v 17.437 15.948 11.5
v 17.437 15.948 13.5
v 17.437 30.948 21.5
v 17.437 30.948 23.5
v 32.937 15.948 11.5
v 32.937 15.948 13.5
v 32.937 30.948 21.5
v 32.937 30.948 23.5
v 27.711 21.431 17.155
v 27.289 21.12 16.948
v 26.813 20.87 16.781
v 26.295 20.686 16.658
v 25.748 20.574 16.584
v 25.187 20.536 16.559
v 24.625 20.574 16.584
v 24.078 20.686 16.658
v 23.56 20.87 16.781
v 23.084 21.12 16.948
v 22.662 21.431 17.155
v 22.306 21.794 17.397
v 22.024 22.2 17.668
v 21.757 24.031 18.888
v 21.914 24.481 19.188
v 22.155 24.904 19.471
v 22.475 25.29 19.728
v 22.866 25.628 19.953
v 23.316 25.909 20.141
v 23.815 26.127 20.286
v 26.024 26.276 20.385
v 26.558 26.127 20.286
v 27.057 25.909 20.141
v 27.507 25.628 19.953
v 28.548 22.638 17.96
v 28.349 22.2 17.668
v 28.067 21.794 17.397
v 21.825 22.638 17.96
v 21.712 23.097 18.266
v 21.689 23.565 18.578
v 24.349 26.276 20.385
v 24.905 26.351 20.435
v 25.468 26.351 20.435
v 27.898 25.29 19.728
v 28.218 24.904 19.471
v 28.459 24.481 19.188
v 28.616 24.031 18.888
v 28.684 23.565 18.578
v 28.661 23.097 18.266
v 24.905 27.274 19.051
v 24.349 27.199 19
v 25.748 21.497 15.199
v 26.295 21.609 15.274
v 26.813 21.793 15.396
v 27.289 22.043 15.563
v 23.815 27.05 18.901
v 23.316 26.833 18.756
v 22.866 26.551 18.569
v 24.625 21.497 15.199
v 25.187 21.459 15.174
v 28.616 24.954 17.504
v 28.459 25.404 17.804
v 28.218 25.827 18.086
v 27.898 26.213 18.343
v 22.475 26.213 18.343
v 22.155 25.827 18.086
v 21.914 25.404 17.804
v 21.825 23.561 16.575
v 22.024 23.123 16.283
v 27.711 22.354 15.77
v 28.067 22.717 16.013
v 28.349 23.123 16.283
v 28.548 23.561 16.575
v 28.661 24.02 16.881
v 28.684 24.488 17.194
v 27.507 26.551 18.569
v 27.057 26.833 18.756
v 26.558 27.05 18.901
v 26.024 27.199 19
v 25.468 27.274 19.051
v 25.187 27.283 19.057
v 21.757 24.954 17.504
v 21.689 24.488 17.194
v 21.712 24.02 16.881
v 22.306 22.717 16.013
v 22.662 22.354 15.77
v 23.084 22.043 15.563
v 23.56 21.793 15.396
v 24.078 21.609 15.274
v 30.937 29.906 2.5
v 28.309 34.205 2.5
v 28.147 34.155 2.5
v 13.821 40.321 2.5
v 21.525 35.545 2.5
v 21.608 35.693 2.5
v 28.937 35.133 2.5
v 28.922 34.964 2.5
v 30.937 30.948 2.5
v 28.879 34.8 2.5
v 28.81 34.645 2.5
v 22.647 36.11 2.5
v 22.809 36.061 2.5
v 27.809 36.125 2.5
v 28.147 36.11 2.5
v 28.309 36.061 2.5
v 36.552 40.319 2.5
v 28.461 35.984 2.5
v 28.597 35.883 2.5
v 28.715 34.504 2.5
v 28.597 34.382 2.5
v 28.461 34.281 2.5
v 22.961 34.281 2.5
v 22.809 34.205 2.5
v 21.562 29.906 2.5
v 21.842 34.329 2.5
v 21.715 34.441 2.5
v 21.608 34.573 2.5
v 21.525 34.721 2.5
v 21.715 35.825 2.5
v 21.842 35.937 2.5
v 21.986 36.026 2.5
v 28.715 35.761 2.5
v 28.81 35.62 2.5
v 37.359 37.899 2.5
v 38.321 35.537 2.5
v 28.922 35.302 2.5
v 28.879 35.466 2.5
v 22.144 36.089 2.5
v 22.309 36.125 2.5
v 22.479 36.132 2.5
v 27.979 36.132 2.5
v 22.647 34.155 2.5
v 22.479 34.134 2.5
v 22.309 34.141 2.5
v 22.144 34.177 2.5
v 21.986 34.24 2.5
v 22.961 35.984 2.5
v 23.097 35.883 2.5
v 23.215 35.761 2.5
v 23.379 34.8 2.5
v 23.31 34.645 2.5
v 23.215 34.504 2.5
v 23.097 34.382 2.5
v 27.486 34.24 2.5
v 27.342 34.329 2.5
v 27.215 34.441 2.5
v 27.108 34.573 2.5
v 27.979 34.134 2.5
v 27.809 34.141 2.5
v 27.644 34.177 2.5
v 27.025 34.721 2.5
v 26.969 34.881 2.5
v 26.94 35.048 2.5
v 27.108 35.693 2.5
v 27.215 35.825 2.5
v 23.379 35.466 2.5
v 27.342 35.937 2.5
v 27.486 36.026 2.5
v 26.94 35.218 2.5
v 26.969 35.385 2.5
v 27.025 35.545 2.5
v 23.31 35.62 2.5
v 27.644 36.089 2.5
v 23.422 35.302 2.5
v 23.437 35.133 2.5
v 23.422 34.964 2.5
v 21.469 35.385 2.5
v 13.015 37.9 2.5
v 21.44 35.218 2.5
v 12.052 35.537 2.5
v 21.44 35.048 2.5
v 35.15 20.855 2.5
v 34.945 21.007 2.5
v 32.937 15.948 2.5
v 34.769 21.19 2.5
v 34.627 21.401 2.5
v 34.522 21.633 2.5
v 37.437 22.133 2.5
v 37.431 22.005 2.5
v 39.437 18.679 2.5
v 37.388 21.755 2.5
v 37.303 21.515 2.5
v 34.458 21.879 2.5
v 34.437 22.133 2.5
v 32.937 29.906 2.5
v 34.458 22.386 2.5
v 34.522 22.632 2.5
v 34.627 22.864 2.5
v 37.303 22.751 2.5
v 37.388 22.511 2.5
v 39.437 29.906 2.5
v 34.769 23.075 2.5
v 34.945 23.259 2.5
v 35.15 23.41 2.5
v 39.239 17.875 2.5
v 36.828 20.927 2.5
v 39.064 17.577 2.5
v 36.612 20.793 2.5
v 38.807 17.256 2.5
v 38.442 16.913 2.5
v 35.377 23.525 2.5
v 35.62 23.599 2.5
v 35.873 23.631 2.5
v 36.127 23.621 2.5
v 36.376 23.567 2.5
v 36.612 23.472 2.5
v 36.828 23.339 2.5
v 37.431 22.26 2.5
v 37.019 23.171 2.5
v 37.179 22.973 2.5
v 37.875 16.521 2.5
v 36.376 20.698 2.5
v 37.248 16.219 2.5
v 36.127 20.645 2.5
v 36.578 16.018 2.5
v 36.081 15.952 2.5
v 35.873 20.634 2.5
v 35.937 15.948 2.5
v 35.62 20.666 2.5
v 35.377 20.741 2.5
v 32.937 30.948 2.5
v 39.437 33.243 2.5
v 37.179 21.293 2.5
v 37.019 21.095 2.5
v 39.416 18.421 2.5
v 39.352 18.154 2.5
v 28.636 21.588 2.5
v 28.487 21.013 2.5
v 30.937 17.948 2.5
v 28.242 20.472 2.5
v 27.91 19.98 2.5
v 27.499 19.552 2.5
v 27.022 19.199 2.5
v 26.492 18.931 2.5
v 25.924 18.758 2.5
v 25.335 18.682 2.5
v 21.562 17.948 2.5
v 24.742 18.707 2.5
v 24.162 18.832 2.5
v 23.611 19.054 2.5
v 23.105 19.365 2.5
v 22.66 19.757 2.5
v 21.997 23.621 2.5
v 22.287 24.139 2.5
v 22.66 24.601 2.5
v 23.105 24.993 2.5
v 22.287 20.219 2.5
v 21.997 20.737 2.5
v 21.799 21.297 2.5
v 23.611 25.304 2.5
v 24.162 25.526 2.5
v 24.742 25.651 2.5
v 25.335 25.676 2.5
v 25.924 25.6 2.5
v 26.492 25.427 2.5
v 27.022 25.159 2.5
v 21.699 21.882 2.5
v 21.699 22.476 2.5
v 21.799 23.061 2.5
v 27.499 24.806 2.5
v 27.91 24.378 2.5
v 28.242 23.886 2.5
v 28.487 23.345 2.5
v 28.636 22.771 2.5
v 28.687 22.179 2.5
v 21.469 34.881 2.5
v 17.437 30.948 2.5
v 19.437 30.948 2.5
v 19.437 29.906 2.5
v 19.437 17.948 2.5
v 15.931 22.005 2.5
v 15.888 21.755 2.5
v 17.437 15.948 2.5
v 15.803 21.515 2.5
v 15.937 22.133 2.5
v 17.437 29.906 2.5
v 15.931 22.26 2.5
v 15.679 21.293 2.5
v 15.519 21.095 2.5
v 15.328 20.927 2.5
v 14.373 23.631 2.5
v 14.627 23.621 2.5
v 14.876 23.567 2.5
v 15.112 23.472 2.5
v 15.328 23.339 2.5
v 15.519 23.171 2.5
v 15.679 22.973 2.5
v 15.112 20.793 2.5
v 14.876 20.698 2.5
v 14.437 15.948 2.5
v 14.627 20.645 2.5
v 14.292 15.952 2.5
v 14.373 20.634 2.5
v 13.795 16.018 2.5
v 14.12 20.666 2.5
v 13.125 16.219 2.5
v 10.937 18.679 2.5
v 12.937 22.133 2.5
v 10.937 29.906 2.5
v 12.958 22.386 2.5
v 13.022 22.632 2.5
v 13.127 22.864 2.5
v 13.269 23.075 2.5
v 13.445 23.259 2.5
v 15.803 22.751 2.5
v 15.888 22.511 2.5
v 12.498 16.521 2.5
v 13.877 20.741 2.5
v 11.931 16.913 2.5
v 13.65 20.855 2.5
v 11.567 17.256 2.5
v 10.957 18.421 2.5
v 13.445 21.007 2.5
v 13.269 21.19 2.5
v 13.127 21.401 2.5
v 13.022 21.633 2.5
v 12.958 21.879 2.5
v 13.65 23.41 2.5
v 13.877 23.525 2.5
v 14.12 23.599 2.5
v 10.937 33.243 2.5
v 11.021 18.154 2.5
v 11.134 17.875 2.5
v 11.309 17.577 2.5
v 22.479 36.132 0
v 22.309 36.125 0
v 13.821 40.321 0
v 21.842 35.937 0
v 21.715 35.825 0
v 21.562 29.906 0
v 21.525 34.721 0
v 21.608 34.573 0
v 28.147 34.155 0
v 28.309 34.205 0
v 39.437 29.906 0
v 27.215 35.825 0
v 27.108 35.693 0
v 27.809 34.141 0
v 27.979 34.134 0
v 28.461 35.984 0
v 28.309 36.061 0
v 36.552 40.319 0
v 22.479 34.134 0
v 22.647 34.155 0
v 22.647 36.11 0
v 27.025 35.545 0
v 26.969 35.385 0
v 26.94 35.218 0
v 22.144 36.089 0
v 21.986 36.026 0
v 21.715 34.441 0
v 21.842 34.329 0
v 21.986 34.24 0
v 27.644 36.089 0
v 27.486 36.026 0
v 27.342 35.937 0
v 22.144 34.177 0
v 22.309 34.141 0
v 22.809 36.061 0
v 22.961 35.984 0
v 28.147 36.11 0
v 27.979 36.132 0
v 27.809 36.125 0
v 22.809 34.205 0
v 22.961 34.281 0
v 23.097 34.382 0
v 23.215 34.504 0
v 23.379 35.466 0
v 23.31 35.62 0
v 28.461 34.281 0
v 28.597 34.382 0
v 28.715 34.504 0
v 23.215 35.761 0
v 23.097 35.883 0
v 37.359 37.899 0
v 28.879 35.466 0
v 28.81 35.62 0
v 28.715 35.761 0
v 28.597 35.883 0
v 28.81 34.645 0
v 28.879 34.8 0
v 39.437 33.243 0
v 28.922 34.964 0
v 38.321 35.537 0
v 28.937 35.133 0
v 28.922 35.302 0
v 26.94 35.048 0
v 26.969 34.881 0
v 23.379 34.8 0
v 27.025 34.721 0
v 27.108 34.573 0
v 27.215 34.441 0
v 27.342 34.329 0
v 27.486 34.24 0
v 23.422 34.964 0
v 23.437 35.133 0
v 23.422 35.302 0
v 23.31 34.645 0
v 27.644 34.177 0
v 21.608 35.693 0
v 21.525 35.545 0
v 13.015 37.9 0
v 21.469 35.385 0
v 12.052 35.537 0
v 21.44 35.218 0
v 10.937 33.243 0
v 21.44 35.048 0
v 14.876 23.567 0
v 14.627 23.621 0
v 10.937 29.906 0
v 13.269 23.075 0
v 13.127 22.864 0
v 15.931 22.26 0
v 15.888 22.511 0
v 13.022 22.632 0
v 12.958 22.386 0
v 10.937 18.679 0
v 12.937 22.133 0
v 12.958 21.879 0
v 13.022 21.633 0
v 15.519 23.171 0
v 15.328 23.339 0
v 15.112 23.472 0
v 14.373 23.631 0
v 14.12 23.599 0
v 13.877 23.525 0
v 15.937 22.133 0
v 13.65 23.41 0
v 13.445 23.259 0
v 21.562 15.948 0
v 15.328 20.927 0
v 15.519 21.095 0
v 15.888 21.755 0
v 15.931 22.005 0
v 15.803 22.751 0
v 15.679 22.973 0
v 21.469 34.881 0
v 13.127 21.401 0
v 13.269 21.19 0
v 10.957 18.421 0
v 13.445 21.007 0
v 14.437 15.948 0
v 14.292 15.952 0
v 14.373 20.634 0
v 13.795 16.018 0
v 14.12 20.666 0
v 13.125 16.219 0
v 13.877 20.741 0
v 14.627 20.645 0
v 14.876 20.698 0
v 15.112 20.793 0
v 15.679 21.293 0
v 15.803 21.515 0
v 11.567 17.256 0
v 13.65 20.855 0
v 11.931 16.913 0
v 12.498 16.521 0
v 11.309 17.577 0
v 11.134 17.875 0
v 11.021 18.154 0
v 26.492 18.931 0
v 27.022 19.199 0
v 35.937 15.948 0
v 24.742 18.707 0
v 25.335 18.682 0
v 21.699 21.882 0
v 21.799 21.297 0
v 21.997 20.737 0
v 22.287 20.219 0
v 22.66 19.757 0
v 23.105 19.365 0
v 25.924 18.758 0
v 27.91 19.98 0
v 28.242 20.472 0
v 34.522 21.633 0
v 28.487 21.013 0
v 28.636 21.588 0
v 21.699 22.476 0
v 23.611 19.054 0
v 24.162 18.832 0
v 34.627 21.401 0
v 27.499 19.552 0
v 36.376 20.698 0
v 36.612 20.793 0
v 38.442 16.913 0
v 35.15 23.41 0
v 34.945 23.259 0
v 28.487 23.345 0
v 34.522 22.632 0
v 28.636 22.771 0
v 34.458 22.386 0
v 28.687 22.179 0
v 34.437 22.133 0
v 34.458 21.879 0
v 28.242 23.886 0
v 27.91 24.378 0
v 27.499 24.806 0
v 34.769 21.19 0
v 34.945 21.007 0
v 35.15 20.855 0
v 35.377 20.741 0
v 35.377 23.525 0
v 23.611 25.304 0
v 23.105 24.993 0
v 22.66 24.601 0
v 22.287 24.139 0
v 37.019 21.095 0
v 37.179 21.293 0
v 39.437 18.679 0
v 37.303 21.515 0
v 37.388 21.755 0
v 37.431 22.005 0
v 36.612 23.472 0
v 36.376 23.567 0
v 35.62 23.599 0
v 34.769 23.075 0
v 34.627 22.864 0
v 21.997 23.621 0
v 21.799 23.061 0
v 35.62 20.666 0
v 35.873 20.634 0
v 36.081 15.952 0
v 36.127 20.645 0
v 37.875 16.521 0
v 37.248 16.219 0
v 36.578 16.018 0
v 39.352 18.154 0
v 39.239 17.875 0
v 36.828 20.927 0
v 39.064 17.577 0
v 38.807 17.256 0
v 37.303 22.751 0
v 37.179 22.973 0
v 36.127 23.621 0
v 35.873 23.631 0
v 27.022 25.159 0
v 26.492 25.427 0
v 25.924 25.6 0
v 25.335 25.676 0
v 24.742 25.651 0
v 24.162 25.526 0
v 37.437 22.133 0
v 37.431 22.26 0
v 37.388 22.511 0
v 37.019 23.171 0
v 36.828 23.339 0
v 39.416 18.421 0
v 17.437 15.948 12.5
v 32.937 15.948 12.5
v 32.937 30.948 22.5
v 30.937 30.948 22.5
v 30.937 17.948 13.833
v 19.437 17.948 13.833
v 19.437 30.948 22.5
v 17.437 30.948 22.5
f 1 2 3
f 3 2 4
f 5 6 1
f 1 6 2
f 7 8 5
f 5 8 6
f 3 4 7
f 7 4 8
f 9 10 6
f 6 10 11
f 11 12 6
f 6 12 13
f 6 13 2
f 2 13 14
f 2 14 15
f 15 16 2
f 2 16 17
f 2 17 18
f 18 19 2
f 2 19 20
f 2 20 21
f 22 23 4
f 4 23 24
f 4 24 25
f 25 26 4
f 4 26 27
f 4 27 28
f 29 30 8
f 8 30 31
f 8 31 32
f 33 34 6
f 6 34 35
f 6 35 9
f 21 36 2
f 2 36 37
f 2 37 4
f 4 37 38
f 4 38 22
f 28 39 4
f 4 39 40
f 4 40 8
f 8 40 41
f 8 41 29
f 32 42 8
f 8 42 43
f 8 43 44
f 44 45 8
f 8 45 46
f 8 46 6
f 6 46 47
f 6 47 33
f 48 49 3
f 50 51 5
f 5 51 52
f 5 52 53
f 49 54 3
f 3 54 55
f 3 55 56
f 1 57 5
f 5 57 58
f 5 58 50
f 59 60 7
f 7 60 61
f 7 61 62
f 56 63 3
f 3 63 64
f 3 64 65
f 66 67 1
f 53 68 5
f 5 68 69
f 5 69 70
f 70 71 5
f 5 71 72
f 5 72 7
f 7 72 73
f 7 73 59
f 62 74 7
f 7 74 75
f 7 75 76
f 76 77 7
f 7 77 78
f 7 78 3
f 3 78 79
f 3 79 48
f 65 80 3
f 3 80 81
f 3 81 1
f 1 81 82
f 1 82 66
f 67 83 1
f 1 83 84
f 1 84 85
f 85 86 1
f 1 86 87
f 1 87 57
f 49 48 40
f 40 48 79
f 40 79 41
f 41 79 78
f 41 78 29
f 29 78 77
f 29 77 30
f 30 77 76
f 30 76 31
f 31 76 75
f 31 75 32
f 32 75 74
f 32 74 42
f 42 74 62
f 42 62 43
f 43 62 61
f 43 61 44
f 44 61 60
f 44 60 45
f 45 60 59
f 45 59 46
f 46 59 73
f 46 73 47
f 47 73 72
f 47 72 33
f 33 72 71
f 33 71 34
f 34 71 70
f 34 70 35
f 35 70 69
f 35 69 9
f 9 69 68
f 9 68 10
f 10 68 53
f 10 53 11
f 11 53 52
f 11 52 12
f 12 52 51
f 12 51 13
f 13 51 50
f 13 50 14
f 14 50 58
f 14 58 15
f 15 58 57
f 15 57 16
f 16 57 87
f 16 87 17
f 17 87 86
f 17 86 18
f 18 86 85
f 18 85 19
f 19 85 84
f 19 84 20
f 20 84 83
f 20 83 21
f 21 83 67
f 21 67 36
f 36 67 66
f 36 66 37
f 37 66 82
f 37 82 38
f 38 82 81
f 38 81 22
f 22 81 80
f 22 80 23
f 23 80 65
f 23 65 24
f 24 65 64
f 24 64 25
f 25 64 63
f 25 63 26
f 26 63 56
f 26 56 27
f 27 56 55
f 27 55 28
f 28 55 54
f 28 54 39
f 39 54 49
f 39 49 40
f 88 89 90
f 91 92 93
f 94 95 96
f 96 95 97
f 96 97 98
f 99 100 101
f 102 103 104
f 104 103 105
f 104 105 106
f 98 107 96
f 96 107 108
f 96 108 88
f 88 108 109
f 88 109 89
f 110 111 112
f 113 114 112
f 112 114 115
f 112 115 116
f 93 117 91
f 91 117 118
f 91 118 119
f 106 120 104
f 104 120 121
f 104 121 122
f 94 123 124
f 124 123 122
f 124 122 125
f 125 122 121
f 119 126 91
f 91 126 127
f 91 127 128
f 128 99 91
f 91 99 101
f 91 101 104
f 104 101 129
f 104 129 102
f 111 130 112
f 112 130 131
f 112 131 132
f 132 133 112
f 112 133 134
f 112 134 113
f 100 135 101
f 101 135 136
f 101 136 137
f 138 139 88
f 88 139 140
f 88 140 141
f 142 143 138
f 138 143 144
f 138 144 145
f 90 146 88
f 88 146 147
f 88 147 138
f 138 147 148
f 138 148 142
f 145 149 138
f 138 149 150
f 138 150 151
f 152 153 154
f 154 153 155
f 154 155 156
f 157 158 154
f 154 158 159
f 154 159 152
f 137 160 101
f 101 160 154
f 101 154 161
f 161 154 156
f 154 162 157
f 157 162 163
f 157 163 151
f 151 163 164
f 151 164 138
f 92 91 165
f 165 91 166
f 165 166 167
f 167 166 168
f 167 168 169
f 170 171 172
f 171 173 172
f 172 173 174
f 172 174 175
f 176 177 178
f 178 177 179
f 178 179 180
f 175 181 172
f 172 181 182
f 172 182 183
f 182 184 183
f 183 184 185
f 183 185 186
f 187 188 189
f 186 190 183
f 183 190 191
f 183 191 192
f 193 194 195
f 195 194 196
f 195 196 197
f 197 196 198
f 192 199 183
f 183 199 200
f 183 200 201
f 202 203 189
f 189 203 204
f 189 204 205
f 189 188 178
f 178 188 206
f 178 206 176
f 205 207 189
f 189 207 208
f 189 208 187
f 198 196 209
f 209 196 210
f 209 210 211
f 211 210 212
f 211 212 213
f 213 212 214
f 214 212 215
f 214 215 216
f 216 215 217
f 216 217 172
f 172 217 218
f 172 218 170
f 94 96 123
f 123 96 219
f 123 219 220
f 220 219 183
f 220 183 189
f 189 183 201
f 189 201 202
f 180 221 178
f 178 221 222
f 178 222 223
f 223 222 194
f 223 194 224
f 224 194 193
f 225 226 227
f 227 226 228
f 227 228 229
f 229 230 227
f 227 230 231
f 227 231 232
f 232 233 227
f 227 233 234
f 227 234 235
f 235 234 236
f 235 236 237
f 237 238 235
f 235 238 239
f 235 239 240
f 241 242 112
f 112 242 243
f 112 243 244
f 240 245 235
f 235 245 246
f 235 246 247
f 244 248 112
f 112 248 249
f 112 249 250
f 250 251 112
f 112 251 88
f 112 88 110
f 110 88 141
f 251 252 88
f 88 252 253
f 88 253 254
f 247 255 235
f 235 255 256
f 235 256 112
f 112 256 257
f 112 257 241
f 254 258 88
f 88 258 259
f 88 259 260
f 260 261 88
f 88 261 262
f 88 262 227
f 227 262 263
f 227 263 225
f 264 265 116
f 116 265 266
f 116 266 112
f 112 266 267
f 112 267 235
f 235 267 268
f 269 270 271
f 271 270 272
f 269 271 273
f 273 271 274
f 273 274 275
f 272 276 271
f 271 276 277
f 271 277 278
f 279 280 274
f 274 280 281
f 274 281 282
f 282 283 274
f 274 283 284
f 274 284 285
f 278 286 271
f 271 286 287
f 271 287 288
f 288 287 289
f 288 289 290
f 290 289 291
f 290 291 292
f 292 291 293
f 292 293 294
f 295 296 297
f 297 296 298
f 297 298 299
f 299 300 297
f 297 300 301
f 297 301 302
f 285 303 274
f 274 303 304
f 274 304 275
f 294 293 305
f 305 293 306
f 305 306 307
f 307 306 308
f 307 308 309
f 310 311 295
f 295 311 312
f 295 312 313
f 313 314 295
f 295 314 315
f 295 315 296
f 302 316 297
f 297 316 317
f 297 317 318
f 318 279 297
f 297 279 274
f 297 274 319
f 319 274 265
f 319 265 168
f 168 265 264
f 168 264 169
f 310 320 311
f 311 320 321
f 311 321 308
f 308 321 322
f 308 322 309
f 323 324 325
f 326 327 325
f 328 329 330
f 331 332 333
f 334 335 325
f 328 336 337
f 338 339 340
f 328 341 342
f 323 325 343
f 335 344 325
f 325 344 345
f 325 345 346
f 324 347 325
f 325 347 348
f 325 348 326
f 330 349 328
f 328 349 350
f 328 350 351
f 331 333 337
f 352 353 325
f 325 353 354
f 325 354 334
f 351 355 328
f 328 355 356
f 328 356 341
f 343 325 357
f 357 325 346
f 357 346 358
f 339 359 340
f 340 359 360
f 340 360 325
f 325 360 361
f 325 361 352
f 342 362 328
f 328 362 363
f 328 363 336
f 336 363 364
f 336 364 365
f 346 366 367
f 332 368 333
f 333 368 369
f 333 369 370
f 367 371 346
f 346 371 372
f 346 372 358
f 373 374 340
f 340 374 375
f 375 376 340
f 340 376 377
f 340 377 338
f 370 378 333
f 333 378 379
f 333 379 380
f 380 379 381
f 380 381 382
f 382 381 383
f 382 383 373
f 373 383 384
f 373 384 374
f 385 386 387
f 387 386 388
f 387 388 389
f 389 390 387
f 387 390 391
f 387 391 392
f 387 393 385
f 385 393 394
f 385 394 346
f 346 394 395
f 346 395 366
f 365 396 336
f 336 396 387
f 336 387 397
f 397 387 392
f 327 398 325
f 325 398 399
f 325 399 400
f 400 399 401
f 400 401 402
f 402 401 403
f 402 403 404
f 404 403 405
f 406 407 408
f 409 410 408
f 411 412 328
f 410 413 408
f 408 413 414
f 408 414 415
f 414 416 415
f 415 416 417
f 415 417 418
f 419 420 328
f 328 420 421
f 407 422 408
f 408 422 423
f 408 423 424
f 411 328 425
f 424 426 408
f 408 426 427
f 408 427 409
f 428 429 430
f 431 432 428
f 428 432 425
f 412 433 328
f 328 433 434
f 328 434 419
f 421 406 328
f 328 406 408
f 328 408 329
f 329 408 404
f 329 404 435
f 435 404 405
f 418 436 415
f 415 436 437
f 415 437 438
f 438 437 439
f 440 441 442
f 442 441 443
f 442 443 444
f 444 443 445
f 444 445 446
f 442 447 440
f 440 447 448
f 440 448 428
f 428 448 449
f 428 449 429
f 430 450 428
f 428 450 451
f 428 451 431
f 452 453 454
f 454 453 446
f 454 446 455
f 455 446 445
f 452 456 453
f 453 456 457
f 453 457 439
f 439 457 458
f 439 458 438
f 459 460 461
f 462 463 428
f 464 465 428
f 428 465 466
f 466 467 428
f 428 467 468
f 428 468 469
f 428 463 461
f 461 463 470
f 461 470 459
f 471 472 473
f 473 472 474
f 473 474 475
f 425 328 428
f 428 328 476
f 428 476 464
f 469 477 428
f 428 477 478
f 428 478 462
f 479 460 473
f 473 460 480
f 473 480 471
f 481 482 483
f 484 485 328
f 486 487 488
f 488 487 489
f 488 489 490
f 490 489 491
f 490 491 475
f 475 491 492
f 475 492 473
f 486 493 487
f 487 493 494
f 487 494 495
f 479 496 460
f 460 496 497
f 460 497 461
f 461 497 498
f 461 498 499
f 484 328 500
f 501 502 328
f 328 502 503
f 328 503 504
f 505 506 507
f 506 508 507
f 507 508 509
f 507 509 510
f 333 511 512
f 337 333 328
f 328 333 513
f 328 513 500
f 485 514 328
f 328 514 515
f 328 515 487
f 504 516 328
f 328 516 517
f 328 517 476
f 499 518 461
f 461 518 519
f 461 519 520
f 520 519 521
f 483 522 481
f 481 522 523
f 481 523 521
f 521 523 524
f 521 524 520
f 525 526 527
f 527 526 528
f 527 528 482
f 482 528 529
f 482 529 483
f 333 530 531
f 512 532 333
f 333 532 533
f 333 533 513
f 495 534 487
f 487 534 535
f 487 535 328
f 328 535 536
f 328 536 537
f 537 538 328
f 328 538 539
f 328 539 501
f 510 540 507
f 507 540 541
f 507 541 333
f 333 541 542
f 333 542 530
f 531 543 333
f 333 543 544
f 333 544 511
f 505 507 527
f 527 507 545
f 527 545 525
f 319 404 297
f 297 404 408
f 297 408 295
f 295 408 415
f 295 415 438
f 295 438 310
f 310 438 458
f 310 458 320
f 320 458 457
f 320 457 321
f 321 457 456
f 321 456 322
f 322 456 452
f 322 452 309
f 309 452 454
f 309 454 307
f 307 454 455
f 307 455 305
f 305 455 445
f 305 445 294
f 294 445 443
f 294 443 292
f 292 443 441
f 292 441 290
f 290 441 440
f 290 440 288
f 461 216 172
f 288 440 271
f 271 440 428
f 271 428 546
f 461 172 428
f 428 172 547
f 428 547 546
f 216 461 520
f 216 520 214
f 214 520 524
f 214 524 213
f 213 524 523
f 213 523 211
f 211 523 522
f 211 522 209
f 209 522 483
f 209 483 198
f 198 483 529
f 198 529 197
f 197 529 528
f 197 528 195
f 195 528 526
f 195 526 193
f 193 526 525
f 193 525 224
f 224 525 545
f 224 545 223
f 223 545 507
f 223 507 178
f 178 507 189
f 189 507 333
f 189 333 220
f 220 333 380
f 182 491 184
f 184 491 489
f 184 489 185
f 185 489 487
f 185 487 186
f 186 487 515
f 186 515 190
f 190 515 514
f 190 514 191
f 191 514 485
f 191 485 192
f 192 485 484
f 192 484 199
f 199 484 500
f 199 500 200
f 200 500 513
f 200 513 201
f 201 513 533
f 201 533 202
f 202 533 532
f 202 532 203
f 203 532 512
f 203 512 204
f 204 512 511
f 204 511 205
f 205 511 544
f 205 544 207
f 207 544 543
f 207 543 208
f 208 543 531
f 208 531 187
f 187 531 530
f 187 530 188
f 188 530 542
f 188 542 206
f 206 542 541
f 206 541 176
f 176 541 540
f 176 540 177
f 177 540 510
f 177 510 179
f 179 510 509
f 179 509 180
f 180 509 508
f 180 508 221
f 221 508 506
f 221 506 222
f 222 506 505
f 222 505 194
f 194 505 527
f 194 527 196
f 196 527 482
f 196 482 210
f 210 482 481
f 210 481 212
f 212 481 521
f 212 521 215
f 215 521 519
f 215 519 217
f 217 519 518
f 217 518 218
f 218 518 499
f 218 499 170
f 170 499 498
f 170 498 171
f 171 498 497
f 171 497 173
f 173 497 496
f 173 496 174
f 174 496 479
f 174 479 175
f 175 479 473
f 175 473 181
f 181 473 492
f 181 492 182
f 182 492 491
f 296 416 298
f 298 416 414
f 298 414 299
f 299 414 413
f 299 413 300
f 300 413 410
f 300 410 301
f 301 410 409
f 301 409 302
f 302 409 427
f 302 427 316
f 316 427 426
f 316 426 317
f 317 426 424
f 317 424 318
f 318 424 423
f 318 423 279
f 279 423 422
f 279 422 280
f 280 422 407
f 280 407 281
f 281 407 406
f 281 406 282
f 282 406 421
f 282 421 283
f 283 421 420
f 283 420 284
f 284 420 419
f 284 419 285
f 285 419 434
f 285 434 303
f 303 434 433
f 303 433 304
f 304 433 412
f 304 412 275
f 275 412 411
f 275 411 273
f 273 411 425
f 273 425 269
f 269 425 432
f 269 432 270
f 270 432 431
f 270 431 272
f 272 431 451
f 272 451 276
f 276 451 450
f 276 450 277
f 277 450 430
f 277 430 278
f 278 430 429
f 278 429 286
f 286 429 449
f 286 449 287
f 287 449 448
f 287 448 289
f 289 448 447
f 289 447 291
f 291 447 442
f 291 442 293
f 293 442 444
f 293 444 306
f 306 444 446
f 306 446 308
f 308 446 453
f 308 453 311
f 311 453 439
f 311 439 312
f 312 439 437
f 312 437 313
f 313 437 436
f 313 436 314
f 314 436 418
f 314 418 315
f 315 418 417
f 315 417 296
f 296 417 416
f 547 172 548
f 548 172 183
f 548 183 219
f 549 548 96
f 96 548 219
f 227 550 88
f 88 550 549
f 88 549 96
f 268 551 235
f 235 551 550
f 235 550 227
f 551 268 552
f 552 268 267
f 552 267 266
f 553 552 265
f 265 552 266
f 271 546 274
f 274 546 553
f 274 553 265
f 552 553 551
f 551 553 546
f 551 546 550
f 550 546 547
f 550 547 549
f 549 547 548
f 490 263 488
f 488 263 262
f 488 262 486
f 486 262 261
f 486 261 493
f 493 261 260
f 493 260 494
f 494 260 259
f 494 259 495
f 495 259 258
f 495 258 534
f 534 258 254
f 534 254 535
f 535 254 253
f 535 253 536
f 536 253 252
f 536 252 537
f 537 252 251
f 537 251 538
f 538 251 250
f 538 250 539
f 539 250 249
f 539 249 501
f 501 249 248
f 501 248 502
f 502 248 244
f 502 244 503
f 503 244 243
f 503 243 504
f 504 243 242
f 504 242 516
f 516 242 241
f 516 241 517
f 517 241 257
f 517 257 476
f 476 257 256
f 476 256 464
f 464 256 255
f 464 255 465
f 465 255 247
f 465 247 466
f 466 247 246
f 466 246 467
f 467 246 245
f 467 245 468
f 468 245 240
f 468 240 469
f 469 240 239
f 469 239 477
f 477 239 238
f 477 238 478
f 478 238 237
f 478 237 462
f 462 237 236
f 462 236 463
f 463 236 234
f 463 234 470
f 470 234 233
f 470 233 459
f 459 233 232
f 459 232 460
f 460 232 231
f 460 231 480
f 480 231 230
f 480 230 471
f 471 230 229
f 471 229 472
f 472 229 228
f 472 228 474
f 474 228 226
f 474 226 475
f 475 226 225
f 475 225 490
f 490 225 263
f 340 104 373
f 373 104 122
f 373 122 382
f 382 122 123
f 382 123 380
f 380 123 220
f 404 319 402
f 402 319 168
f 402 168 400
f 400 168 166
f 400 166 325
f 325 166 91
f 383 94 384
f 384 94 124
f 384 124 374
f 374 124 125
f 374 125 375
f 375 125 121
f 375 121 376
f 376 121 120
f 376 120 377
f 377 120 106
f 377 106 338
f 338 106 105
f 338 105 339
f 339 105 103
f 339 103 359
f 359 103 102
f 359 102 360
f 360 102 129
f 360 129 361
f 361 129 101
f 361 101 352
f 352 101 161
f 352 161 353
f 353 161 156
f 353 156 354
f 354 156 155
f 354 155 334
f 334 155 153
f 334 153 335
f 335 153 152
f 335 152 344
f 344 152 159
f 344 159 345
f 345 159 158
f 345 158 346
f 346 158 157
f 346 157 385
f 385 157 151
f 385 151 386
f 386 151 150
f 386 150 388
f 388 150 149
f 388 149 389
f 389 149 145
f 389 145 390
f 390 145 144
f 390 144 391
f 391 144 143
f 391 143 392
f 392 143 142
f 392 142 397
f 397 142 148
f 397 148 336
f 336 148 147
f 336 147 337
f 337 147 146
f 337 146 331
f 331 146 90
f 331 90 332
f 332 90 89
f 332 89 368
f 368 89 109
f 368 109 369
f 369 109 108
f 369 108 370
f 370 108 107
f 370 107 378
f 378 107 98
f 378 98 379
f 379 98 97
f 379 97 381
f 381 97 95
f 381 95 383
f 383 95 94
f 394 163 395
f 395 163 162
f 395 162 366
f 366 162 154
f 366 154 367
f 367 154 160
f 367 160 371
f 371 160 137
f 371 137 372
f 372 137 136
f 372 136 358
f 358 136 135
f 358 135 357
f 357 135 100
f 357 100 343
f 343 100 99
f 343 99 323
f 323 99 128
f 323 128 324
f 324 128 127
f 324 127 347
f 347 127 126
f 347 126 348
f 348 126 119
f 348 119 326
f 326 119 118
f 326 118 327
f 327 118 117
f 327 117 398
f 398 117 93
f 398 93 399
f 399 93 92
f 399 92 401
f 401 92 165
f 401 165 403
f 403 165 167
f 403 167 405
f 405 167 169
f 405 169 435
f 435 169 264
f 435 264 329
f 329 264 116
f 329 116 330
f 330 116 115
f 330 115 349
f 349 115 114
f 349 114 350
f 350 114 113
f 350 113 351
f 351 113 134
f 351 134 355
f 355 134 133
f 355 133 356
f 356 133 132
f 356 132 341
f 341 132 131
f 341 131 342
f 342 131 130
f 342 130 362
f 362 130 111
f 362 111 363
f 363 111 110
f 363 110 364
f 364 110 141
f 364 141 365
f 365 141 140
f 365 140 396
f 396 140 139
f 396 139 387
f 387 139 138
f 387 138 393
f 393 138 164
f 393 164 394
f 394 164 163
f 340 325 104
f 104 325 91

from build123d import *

# Parameters (mm, degrees)
MODEL_R              = 1.5
EXTRUDE_1_DEPTH      = 2.5
SKETCH_2_W           = 21
SKETCH_2_H           = 22
SKETCH_2_W_2         = 19
SKETCH_2_H_2         = 19.020798255
EXTRUDE_2_DEPTH      = 7
SKETCH_3_W           = 1.5
SKETCH_3_H           = 5
EXTRUDE_3_DEPTH      = 7
CUT_EXTRUDE_2_DEPTH  = 7
EXTRUDE_6_DEPTH      = 7
CUT_EXTRUDE_4_DEPTH  = 7
SKETCH_13_W          = 2
SKETCH_13_H          = 2
CUT_EXTRUDE_5_DEPTH  = 7
EXTRUDE_7_DEPTH      = 20
CUT_EXTRUDE_6_DEPTH  = 20
SKETCH_20_W          = 15.5
SKETCH_20_H          = 18.027756377
EXTRUDE_9_DEPTH      = 1
SKETCH_21_R          = 3.5
CUT_EXTRUDE_7_DEPTH  = 2
SKETCH_23_R          = 3.5
CUT_EXTRUDE_8_DEPTH  = 4
SKETCH_25_W          = 3
SKETCH_25_H          = 13
EXTRUDE_10_DEPTH     = 15
SKETCH_26_R          = 2.5
CUT_EXTRUDE_9_DEPTH  = 18
CUT_EXTRUDE_10_DEPTH = 16
SKETCH_28_W          = 2.683621922
SKETCH_28_H          = 2
CUT_EXTRUDE_12_DEPTH = 2
SKETCH_30_R          = 1
CUT_EXTRUDE_13_DEPTH = 10
SKETCH_31_R          = 39
CUT_EXTRUDE_14_DEPTH = 10
SKETCH_33_R          = 1
CUT_EXTRUDE_15_DEPTH = 2.5
EXTRUDE_13_DEPTH     = 2.5
CUT_EXTRUDE_16_DEPTH = 40.5


with BuildPart() as part:
    # Model → 凸台-拉伸1 (new body)
    with BuildSketch(Plane.XY):
        with BuildLine():
            Line((35.686511473, 106.179045823), (14.686511473, 106.179045823))
            Line((14.686511473, 106.179045823), (14.686511473, 84.179045823))
            add(Edge.make_bspline(
                [(14.686511473, 84.179045823), (12.217125861, 84.179045823), (10.936511473, 82.388902867), (10.936511473, 80.679045823)],
                knots=[0, 0, 0, 0, 5.129571132, 5.129571132, 5.129571132, 5.129571132], degree=3))
            Line((10.936511473, 80.679045823), (10.936511473, 18.679045823))
            add(Edge.make_bspline(
                [(10.936511473, 18.679045823), (10.936511473, 17.199254946), (12.956720596, 15.948106541), (14.436511473, 15.948106541)],
                knots=[0, 0, 0, 0, 4.439372631, 4.439372631, 4.439372631, 4.439372631], degree=3))
            Line((14.436511473, 15.948106541), (35.936511473, 15.948106541))
            add(Edge.make_bspline(
                [(39.436511473, 18.679045823), (39.436511473, 17.199254946), (37.41630235, 15.948106541), (35.936511473, 15.948106541)],
                knots=[0, 0, 0, 0, 4.439372631, 4.439372631, 4.439372631, 4.439372631], degree=3))
            Line((39.436511473, 18.679045823), (39.436511473, 80.679045823))
            add(Edge.make_bspline(
                [(35.686511473, 84.179045823), (38.155897084, 84.179045823), (39.436511473, 82.388902867), (39.436511473, 80.679045823)],
                knots=[0, 0, 0, 0, 5.129571132, 5.129571132, 5.129571132, 5.129571132], degree=3))
            Line((35.686511473, 84.179045823), (35.686511473, 106.179045823))
        make_face()
        with Locations((14.436511473, 22.132696196)):
            Circle(MODEL_R, mode=Mode.SUBTRACT)
        with Locations((35.936511473, 22.132696196)):
            Circle(MODEL_R, mode=Mode.SUBTRACT)
        with Locations((14.436511473, 80.679045823)):
            Circle(MODEL_R, mode=Mode.SUBTRACT)
        with Locations((35.936511473, 80.679045823)):
            Circle(MODEL_R, mode=Mode.SUBTRACT)
    extrude(amount=EXTRUDE_1_DEPTH)

    # 草图2 → 凸台-拉伸2 (add)
    with BuildSketch(Plane.XY.offset(2.5)):
        with Locations((25.186511473, 95.179045823)):
            Rectangle(SKETCH_2_W, SKETCH_2_H)
        with Locations((25.18651147, 95.501249058)):
            Rectangle(SKETCH_2_W_2, SKETCH_2_H_2, mode=Mode.SUBTRACT)
    extrude(amount=EXTRUDE_2_DEPTH)

    # 草图3 → 凸台-拉伸3 (add)
    with BuildSketch(Plane.XY.offset(2.5)):
        with Locations((20.120133395, 81.679045823)):
            Rectangle(SKETCH_3_W, SKETCH_3_H)
    extrude(amount=EXTRUDE_3_DEPTH)

    # 草图4 → 切除-拉伸2 (cut)
    with BuildSketch(Plane.ZY.offset(-19.370133395)):
        Polygon((9.5, 84.179045823), (2.5, 79.179045823), (9.5, 79.179045823), align=None)
    extrude(amount=-CUT_EXTRUDE_2_DEPTH, mode=Mode.SUBTRACT)

    # Sketch 3D_1 → 凸台-拉伸6 (add)
    with BuildSketch(Plane(origin=(31.006511473, 84.179045823, 2.5), x_dir=(-0.28734788556634544, -0.9578262852211514, 0), z_dir=(0, 0, -1))):
        Polygon((0, 0), (0.431021828, 1.436739428), (5.220153254, 0), (4.789131426, -1.436739428), align=None)
    extrude(amount=-EXTRUDE_6_DEPTH)

    # 草图12 → 切除-拉伸4 (cut)
    with BuildSketch(Plane.ZY.offset(-29.506511473)):
        Polygon((9.5, 84.179045823), (9.5, 79.179045823), (2.5, 79.179045823), align=None)
    extrude(amount=-CUT_EXTRUDE_4_DEPTH, mode=Mode.SUBTRACT)

    # 草图13 → 切除-拉伸5 (cut)
    with BuildSketch(Plane.XZ.offset(-84.179045823)):
        with Locations((25.186511473, 3.5)):
            Rectangle(SKETCH_13_W, SKETCH_13_H)
    extrude(amount=-CUT_EXTRUDE_5_DEPTH, mode=Mode.SUBTRACT)

    # 草图14 → 凸台-拉伸7 (add)
    with BuildSketch(Plane.XY.offset(2.5)):
        Polygon((19.436511473, 30.948106541), (19.436511473, 17.948106541), (30.936511473, 17.948106541), (30.936511473, 30.948106541), (32.936511473, 30.948106541), (32.936511473, 15.948106541), (17.436511473, 15.948106541), (17.436511473, 30.948106541), align=None)
    extrude(amount=EXTRUDE_7_DEPTH)

    # 草图15 → 切除-拉伸6 (cut)
    with BuildSketch(Plane.ZY.offset(-17.436511473)):
        Polygon((22.5, 30.948106541), (22.5, 15.948106541), (12.5, 15.948106541), align=None)
    extrude(amount=-CUT_EXTRUDE_6_DEPTH, mode=Mode.SUBTRACT)

    # 草图23 → 切除-拉伸8 (cut)
    with BuildSketch(Plane.XY.offset(2.5)):
        with Locations((25.186511473, 22.179045823)):
            Circle(SKETCH_23_R)
    extrude(amount=-CUT_EXTRUDE_8_DEPTH, mode=Mode.SUBTRACT)

    # 草图25 → 凸台-拉伸10 (add)
    with BuildSketch(Plane.XY.offset(2.5)):
        Polygon((25.186511473, 73.429045823), (26.214511031, 73.429045823), (26.214511031, 60.429045823), (24.186511473, 60.429045823), (24.186511473, 73.429045823), align=None)
        with Locations((31.686511473, 66.929045823)):
            Rectangle(SKETCH_25_W, SKETCH_25_H)
        with Locations((18.686511473, 66.929045823)):
            Rectangle(SKETCH_25_W, SKETCH_25_H)
    extrude(amount=EXTRUDE_10_DEPTH)

    # 草图26 → 切除-拉伸9 (cut)
    with BuildSketch(Plane.ZY.offset(-17.186511473)):
        with Locations(Location((11, 66.929045823, 0), (0, 0, 270))):
            Circle(SKETCH_26_R)
    extrude(amount=-CUT_EXTRUDE_9_DEPTH, mode=Mode.SUBTRACT)

    # 草图27 → 切除-拉伸10 (cut)
    with BuildSketch(Plane.ZY.offset(-17.186511473)):
        with BuildLine():
            Line((11, 73.429045823), (11, 75.536501325))
            Line((11, 75.536501325), (21.747083052, 75.536501325))
            Line((21.747083052, 75.536501325), (21.747083052, 59.045875477))
            Line((21.747083052, 59.045875477), (11, 59.431370627))
            Line((11, 59.431370627), (11, 60.429045823))
            ThreePointArc((11, 60.429045823), (17.5, 66.929045823), (11, 73.429045823))
        make_face()
    extrude(amount=-CUT_EXTRUDE_10_DEPTH, mode=Mode.SUBTRACT)

    # 草图28 → 切除-拉伸12 (cut)
    with BuildSketch(Plane.XZ.offset(-84.179045823)):
        with Locations((18.028322434, 3.5)):
            Rectangle(SKETCH_28_W, SKETCH_28_H)
        Polygon((31.001439257, 2.495787232), (33.685060474, 2.493843259), (33.686509243, 4.493842734), (31.002888025, 4.495786707), align=None)
    extrude(amount=-CUT_EXTRUDE_12_DEPTH, mode=Mode.SUBTRACT)

    # 草图30 → 切除-拉伸13 (cut)
    with BuildSketch(Plane.XY.offset(2.5)):
        with Locations((28.188322434, 55.179045823)):
            Circle(SKETCH_30_R)
        with Locations((22.188322434, 54.179045823)):
            Circle(SKETCH_30_R)
    extrude(amount=-CUT_EXTRUDE_13_DEPTH, mode=Mode.SUBTRACT)

    # 草图31 → 切除-拉伸14 (cut)
    with BuildSketch(Plane.XY.offset(2.5)):
        with Locations((-23.563488527, 51.429045823)):
            Circle(SKETCH_31_R)
        with Locations((73.936511473, 51.429045823)):
            Circle(SKETCH_31_R)
    extrude(amount=-CUT_EXTRUDE_14_DEPTH, mode=Mode.SUBTRACT)

    # 草图33 → 切除-拉伸15 (cut)
    with BuildSketch(Plane.XY.offset(2.5)):
        with Locations((22.436511473, 35.132696196)):
            Circle(SKETCH_33_R)
        with Locations((27.936511473, 35.132696196)):
            Circle(SKETCH_33_R)
    extrude(amount=-CUT_EXTRUDE_15_DEPTH, mode=Mode.SUBTRACT)

    # 草图32 → 凸台-拉伸13 (add)
    with BuildSketch(Plane.XY.offset(2.5)):
        with BuildLine():
            Line((17.214511031, 60.429045823), (15.297431543, 47.822900451))
            add(Edge.make_bspline(
                [(17.214511031, 60.429045823), (16.402774166, 57.261824787), (15.879635601, 55.030502336), (6.038156358, 53.300869438), (2.601041084, 54.562530921), (2.767654696, 53.014775012), (5.153806778, 51.137514182), (9.250259364, 48.687019635), (9.753110129, 48.526716356), (15.297431543, 47.822900451)],
                knots=[0, 0, 0, 0, 0.228683763, 0.270207351, 0.399121597, 0.431668139, 0.563126225, 0.621602637, 1, 1, 1, 1], degree=3))
        make_face()
        with BuildLine():
            Line((33.186511473, 60.429045823), (35.10359096, 47.822900451))
            add(Edge.make_bspline(
                [(33.186511473, 60.429045823), (33.998248337, 57.261824787), (34.521386902, 55.030502336), (44.362866145, 53.300869438), (47.79998142, 54.562530921), (47.633367808, 53.014775012), (45.247215725, 51.137514182), (41.150763139, 48.687019635), (40.647912374, 48.526716356), (35.10359096, 47.822900451)],
                knots=[0, 0, 0, 0, 0.228683763, 0.270207351, 0.399121597, 0.431668139, 0.563126225, 0.621602637, 1, 1, 1, 1], degree=3))
        make_face()
    extrude(amount=-EXTRUDE_13_DEPTH)

    # 草图34 → 切除-拉伸16 (cut, symmetric)
    with BuildSketch(Plane.XY.offset(2.5)):
        Polygon((13.821184983, 40.321112329), (36.55234053, 40.319421035), (46.082104671, 32.132653457), (58.914368783, 113.092574309), (0, 109.126238129), (-4.080382313, 42.2818078), align=None)
    extrude(amount=CUT_EXTRUDE_16_DEPTH, both=True, mode=Mode.SUBTRACT)


with BuildPart() as body_2:
    # 草图20 → 凸台-拉伸9 (new, symmetric, along a direction that is not the sketch's normal)
    with BuildSketch(Plane(origin=(0, -0.862121064, 1.293181596), x_dir=(1, 0, 0), z_dir=(0, -0.5547001962252294, 0.8320502943378436))):
        with Locations((25.186511473, 29.217257383)):
            Rectangle(SKETCH_20_W, SKETCH_20_H)
    extrude(amount=EXTRUDE_9_DEPTH, dir=(0, 0, 1), both=True)

    # 草图21 → 切除-拉伸7 (cut)
    with BuildSketch(Plane(origin=(0, -1.323659526, 1.985489289), x_dir=(1, 0, 0), z_dir=(0, -0.5547001962252295, 0.8320502943378434))):
        with Locations(Location((25.186511473, 29.771957579, 0), (0, 0, 270))):
            Circle(SKETCH_21_R)
    extrude(amount=-CUT_EXTRUDE_7_DEPTH, mode=Mode.SUBTRACT)


solid = Compound([part.part, body_2.part])
